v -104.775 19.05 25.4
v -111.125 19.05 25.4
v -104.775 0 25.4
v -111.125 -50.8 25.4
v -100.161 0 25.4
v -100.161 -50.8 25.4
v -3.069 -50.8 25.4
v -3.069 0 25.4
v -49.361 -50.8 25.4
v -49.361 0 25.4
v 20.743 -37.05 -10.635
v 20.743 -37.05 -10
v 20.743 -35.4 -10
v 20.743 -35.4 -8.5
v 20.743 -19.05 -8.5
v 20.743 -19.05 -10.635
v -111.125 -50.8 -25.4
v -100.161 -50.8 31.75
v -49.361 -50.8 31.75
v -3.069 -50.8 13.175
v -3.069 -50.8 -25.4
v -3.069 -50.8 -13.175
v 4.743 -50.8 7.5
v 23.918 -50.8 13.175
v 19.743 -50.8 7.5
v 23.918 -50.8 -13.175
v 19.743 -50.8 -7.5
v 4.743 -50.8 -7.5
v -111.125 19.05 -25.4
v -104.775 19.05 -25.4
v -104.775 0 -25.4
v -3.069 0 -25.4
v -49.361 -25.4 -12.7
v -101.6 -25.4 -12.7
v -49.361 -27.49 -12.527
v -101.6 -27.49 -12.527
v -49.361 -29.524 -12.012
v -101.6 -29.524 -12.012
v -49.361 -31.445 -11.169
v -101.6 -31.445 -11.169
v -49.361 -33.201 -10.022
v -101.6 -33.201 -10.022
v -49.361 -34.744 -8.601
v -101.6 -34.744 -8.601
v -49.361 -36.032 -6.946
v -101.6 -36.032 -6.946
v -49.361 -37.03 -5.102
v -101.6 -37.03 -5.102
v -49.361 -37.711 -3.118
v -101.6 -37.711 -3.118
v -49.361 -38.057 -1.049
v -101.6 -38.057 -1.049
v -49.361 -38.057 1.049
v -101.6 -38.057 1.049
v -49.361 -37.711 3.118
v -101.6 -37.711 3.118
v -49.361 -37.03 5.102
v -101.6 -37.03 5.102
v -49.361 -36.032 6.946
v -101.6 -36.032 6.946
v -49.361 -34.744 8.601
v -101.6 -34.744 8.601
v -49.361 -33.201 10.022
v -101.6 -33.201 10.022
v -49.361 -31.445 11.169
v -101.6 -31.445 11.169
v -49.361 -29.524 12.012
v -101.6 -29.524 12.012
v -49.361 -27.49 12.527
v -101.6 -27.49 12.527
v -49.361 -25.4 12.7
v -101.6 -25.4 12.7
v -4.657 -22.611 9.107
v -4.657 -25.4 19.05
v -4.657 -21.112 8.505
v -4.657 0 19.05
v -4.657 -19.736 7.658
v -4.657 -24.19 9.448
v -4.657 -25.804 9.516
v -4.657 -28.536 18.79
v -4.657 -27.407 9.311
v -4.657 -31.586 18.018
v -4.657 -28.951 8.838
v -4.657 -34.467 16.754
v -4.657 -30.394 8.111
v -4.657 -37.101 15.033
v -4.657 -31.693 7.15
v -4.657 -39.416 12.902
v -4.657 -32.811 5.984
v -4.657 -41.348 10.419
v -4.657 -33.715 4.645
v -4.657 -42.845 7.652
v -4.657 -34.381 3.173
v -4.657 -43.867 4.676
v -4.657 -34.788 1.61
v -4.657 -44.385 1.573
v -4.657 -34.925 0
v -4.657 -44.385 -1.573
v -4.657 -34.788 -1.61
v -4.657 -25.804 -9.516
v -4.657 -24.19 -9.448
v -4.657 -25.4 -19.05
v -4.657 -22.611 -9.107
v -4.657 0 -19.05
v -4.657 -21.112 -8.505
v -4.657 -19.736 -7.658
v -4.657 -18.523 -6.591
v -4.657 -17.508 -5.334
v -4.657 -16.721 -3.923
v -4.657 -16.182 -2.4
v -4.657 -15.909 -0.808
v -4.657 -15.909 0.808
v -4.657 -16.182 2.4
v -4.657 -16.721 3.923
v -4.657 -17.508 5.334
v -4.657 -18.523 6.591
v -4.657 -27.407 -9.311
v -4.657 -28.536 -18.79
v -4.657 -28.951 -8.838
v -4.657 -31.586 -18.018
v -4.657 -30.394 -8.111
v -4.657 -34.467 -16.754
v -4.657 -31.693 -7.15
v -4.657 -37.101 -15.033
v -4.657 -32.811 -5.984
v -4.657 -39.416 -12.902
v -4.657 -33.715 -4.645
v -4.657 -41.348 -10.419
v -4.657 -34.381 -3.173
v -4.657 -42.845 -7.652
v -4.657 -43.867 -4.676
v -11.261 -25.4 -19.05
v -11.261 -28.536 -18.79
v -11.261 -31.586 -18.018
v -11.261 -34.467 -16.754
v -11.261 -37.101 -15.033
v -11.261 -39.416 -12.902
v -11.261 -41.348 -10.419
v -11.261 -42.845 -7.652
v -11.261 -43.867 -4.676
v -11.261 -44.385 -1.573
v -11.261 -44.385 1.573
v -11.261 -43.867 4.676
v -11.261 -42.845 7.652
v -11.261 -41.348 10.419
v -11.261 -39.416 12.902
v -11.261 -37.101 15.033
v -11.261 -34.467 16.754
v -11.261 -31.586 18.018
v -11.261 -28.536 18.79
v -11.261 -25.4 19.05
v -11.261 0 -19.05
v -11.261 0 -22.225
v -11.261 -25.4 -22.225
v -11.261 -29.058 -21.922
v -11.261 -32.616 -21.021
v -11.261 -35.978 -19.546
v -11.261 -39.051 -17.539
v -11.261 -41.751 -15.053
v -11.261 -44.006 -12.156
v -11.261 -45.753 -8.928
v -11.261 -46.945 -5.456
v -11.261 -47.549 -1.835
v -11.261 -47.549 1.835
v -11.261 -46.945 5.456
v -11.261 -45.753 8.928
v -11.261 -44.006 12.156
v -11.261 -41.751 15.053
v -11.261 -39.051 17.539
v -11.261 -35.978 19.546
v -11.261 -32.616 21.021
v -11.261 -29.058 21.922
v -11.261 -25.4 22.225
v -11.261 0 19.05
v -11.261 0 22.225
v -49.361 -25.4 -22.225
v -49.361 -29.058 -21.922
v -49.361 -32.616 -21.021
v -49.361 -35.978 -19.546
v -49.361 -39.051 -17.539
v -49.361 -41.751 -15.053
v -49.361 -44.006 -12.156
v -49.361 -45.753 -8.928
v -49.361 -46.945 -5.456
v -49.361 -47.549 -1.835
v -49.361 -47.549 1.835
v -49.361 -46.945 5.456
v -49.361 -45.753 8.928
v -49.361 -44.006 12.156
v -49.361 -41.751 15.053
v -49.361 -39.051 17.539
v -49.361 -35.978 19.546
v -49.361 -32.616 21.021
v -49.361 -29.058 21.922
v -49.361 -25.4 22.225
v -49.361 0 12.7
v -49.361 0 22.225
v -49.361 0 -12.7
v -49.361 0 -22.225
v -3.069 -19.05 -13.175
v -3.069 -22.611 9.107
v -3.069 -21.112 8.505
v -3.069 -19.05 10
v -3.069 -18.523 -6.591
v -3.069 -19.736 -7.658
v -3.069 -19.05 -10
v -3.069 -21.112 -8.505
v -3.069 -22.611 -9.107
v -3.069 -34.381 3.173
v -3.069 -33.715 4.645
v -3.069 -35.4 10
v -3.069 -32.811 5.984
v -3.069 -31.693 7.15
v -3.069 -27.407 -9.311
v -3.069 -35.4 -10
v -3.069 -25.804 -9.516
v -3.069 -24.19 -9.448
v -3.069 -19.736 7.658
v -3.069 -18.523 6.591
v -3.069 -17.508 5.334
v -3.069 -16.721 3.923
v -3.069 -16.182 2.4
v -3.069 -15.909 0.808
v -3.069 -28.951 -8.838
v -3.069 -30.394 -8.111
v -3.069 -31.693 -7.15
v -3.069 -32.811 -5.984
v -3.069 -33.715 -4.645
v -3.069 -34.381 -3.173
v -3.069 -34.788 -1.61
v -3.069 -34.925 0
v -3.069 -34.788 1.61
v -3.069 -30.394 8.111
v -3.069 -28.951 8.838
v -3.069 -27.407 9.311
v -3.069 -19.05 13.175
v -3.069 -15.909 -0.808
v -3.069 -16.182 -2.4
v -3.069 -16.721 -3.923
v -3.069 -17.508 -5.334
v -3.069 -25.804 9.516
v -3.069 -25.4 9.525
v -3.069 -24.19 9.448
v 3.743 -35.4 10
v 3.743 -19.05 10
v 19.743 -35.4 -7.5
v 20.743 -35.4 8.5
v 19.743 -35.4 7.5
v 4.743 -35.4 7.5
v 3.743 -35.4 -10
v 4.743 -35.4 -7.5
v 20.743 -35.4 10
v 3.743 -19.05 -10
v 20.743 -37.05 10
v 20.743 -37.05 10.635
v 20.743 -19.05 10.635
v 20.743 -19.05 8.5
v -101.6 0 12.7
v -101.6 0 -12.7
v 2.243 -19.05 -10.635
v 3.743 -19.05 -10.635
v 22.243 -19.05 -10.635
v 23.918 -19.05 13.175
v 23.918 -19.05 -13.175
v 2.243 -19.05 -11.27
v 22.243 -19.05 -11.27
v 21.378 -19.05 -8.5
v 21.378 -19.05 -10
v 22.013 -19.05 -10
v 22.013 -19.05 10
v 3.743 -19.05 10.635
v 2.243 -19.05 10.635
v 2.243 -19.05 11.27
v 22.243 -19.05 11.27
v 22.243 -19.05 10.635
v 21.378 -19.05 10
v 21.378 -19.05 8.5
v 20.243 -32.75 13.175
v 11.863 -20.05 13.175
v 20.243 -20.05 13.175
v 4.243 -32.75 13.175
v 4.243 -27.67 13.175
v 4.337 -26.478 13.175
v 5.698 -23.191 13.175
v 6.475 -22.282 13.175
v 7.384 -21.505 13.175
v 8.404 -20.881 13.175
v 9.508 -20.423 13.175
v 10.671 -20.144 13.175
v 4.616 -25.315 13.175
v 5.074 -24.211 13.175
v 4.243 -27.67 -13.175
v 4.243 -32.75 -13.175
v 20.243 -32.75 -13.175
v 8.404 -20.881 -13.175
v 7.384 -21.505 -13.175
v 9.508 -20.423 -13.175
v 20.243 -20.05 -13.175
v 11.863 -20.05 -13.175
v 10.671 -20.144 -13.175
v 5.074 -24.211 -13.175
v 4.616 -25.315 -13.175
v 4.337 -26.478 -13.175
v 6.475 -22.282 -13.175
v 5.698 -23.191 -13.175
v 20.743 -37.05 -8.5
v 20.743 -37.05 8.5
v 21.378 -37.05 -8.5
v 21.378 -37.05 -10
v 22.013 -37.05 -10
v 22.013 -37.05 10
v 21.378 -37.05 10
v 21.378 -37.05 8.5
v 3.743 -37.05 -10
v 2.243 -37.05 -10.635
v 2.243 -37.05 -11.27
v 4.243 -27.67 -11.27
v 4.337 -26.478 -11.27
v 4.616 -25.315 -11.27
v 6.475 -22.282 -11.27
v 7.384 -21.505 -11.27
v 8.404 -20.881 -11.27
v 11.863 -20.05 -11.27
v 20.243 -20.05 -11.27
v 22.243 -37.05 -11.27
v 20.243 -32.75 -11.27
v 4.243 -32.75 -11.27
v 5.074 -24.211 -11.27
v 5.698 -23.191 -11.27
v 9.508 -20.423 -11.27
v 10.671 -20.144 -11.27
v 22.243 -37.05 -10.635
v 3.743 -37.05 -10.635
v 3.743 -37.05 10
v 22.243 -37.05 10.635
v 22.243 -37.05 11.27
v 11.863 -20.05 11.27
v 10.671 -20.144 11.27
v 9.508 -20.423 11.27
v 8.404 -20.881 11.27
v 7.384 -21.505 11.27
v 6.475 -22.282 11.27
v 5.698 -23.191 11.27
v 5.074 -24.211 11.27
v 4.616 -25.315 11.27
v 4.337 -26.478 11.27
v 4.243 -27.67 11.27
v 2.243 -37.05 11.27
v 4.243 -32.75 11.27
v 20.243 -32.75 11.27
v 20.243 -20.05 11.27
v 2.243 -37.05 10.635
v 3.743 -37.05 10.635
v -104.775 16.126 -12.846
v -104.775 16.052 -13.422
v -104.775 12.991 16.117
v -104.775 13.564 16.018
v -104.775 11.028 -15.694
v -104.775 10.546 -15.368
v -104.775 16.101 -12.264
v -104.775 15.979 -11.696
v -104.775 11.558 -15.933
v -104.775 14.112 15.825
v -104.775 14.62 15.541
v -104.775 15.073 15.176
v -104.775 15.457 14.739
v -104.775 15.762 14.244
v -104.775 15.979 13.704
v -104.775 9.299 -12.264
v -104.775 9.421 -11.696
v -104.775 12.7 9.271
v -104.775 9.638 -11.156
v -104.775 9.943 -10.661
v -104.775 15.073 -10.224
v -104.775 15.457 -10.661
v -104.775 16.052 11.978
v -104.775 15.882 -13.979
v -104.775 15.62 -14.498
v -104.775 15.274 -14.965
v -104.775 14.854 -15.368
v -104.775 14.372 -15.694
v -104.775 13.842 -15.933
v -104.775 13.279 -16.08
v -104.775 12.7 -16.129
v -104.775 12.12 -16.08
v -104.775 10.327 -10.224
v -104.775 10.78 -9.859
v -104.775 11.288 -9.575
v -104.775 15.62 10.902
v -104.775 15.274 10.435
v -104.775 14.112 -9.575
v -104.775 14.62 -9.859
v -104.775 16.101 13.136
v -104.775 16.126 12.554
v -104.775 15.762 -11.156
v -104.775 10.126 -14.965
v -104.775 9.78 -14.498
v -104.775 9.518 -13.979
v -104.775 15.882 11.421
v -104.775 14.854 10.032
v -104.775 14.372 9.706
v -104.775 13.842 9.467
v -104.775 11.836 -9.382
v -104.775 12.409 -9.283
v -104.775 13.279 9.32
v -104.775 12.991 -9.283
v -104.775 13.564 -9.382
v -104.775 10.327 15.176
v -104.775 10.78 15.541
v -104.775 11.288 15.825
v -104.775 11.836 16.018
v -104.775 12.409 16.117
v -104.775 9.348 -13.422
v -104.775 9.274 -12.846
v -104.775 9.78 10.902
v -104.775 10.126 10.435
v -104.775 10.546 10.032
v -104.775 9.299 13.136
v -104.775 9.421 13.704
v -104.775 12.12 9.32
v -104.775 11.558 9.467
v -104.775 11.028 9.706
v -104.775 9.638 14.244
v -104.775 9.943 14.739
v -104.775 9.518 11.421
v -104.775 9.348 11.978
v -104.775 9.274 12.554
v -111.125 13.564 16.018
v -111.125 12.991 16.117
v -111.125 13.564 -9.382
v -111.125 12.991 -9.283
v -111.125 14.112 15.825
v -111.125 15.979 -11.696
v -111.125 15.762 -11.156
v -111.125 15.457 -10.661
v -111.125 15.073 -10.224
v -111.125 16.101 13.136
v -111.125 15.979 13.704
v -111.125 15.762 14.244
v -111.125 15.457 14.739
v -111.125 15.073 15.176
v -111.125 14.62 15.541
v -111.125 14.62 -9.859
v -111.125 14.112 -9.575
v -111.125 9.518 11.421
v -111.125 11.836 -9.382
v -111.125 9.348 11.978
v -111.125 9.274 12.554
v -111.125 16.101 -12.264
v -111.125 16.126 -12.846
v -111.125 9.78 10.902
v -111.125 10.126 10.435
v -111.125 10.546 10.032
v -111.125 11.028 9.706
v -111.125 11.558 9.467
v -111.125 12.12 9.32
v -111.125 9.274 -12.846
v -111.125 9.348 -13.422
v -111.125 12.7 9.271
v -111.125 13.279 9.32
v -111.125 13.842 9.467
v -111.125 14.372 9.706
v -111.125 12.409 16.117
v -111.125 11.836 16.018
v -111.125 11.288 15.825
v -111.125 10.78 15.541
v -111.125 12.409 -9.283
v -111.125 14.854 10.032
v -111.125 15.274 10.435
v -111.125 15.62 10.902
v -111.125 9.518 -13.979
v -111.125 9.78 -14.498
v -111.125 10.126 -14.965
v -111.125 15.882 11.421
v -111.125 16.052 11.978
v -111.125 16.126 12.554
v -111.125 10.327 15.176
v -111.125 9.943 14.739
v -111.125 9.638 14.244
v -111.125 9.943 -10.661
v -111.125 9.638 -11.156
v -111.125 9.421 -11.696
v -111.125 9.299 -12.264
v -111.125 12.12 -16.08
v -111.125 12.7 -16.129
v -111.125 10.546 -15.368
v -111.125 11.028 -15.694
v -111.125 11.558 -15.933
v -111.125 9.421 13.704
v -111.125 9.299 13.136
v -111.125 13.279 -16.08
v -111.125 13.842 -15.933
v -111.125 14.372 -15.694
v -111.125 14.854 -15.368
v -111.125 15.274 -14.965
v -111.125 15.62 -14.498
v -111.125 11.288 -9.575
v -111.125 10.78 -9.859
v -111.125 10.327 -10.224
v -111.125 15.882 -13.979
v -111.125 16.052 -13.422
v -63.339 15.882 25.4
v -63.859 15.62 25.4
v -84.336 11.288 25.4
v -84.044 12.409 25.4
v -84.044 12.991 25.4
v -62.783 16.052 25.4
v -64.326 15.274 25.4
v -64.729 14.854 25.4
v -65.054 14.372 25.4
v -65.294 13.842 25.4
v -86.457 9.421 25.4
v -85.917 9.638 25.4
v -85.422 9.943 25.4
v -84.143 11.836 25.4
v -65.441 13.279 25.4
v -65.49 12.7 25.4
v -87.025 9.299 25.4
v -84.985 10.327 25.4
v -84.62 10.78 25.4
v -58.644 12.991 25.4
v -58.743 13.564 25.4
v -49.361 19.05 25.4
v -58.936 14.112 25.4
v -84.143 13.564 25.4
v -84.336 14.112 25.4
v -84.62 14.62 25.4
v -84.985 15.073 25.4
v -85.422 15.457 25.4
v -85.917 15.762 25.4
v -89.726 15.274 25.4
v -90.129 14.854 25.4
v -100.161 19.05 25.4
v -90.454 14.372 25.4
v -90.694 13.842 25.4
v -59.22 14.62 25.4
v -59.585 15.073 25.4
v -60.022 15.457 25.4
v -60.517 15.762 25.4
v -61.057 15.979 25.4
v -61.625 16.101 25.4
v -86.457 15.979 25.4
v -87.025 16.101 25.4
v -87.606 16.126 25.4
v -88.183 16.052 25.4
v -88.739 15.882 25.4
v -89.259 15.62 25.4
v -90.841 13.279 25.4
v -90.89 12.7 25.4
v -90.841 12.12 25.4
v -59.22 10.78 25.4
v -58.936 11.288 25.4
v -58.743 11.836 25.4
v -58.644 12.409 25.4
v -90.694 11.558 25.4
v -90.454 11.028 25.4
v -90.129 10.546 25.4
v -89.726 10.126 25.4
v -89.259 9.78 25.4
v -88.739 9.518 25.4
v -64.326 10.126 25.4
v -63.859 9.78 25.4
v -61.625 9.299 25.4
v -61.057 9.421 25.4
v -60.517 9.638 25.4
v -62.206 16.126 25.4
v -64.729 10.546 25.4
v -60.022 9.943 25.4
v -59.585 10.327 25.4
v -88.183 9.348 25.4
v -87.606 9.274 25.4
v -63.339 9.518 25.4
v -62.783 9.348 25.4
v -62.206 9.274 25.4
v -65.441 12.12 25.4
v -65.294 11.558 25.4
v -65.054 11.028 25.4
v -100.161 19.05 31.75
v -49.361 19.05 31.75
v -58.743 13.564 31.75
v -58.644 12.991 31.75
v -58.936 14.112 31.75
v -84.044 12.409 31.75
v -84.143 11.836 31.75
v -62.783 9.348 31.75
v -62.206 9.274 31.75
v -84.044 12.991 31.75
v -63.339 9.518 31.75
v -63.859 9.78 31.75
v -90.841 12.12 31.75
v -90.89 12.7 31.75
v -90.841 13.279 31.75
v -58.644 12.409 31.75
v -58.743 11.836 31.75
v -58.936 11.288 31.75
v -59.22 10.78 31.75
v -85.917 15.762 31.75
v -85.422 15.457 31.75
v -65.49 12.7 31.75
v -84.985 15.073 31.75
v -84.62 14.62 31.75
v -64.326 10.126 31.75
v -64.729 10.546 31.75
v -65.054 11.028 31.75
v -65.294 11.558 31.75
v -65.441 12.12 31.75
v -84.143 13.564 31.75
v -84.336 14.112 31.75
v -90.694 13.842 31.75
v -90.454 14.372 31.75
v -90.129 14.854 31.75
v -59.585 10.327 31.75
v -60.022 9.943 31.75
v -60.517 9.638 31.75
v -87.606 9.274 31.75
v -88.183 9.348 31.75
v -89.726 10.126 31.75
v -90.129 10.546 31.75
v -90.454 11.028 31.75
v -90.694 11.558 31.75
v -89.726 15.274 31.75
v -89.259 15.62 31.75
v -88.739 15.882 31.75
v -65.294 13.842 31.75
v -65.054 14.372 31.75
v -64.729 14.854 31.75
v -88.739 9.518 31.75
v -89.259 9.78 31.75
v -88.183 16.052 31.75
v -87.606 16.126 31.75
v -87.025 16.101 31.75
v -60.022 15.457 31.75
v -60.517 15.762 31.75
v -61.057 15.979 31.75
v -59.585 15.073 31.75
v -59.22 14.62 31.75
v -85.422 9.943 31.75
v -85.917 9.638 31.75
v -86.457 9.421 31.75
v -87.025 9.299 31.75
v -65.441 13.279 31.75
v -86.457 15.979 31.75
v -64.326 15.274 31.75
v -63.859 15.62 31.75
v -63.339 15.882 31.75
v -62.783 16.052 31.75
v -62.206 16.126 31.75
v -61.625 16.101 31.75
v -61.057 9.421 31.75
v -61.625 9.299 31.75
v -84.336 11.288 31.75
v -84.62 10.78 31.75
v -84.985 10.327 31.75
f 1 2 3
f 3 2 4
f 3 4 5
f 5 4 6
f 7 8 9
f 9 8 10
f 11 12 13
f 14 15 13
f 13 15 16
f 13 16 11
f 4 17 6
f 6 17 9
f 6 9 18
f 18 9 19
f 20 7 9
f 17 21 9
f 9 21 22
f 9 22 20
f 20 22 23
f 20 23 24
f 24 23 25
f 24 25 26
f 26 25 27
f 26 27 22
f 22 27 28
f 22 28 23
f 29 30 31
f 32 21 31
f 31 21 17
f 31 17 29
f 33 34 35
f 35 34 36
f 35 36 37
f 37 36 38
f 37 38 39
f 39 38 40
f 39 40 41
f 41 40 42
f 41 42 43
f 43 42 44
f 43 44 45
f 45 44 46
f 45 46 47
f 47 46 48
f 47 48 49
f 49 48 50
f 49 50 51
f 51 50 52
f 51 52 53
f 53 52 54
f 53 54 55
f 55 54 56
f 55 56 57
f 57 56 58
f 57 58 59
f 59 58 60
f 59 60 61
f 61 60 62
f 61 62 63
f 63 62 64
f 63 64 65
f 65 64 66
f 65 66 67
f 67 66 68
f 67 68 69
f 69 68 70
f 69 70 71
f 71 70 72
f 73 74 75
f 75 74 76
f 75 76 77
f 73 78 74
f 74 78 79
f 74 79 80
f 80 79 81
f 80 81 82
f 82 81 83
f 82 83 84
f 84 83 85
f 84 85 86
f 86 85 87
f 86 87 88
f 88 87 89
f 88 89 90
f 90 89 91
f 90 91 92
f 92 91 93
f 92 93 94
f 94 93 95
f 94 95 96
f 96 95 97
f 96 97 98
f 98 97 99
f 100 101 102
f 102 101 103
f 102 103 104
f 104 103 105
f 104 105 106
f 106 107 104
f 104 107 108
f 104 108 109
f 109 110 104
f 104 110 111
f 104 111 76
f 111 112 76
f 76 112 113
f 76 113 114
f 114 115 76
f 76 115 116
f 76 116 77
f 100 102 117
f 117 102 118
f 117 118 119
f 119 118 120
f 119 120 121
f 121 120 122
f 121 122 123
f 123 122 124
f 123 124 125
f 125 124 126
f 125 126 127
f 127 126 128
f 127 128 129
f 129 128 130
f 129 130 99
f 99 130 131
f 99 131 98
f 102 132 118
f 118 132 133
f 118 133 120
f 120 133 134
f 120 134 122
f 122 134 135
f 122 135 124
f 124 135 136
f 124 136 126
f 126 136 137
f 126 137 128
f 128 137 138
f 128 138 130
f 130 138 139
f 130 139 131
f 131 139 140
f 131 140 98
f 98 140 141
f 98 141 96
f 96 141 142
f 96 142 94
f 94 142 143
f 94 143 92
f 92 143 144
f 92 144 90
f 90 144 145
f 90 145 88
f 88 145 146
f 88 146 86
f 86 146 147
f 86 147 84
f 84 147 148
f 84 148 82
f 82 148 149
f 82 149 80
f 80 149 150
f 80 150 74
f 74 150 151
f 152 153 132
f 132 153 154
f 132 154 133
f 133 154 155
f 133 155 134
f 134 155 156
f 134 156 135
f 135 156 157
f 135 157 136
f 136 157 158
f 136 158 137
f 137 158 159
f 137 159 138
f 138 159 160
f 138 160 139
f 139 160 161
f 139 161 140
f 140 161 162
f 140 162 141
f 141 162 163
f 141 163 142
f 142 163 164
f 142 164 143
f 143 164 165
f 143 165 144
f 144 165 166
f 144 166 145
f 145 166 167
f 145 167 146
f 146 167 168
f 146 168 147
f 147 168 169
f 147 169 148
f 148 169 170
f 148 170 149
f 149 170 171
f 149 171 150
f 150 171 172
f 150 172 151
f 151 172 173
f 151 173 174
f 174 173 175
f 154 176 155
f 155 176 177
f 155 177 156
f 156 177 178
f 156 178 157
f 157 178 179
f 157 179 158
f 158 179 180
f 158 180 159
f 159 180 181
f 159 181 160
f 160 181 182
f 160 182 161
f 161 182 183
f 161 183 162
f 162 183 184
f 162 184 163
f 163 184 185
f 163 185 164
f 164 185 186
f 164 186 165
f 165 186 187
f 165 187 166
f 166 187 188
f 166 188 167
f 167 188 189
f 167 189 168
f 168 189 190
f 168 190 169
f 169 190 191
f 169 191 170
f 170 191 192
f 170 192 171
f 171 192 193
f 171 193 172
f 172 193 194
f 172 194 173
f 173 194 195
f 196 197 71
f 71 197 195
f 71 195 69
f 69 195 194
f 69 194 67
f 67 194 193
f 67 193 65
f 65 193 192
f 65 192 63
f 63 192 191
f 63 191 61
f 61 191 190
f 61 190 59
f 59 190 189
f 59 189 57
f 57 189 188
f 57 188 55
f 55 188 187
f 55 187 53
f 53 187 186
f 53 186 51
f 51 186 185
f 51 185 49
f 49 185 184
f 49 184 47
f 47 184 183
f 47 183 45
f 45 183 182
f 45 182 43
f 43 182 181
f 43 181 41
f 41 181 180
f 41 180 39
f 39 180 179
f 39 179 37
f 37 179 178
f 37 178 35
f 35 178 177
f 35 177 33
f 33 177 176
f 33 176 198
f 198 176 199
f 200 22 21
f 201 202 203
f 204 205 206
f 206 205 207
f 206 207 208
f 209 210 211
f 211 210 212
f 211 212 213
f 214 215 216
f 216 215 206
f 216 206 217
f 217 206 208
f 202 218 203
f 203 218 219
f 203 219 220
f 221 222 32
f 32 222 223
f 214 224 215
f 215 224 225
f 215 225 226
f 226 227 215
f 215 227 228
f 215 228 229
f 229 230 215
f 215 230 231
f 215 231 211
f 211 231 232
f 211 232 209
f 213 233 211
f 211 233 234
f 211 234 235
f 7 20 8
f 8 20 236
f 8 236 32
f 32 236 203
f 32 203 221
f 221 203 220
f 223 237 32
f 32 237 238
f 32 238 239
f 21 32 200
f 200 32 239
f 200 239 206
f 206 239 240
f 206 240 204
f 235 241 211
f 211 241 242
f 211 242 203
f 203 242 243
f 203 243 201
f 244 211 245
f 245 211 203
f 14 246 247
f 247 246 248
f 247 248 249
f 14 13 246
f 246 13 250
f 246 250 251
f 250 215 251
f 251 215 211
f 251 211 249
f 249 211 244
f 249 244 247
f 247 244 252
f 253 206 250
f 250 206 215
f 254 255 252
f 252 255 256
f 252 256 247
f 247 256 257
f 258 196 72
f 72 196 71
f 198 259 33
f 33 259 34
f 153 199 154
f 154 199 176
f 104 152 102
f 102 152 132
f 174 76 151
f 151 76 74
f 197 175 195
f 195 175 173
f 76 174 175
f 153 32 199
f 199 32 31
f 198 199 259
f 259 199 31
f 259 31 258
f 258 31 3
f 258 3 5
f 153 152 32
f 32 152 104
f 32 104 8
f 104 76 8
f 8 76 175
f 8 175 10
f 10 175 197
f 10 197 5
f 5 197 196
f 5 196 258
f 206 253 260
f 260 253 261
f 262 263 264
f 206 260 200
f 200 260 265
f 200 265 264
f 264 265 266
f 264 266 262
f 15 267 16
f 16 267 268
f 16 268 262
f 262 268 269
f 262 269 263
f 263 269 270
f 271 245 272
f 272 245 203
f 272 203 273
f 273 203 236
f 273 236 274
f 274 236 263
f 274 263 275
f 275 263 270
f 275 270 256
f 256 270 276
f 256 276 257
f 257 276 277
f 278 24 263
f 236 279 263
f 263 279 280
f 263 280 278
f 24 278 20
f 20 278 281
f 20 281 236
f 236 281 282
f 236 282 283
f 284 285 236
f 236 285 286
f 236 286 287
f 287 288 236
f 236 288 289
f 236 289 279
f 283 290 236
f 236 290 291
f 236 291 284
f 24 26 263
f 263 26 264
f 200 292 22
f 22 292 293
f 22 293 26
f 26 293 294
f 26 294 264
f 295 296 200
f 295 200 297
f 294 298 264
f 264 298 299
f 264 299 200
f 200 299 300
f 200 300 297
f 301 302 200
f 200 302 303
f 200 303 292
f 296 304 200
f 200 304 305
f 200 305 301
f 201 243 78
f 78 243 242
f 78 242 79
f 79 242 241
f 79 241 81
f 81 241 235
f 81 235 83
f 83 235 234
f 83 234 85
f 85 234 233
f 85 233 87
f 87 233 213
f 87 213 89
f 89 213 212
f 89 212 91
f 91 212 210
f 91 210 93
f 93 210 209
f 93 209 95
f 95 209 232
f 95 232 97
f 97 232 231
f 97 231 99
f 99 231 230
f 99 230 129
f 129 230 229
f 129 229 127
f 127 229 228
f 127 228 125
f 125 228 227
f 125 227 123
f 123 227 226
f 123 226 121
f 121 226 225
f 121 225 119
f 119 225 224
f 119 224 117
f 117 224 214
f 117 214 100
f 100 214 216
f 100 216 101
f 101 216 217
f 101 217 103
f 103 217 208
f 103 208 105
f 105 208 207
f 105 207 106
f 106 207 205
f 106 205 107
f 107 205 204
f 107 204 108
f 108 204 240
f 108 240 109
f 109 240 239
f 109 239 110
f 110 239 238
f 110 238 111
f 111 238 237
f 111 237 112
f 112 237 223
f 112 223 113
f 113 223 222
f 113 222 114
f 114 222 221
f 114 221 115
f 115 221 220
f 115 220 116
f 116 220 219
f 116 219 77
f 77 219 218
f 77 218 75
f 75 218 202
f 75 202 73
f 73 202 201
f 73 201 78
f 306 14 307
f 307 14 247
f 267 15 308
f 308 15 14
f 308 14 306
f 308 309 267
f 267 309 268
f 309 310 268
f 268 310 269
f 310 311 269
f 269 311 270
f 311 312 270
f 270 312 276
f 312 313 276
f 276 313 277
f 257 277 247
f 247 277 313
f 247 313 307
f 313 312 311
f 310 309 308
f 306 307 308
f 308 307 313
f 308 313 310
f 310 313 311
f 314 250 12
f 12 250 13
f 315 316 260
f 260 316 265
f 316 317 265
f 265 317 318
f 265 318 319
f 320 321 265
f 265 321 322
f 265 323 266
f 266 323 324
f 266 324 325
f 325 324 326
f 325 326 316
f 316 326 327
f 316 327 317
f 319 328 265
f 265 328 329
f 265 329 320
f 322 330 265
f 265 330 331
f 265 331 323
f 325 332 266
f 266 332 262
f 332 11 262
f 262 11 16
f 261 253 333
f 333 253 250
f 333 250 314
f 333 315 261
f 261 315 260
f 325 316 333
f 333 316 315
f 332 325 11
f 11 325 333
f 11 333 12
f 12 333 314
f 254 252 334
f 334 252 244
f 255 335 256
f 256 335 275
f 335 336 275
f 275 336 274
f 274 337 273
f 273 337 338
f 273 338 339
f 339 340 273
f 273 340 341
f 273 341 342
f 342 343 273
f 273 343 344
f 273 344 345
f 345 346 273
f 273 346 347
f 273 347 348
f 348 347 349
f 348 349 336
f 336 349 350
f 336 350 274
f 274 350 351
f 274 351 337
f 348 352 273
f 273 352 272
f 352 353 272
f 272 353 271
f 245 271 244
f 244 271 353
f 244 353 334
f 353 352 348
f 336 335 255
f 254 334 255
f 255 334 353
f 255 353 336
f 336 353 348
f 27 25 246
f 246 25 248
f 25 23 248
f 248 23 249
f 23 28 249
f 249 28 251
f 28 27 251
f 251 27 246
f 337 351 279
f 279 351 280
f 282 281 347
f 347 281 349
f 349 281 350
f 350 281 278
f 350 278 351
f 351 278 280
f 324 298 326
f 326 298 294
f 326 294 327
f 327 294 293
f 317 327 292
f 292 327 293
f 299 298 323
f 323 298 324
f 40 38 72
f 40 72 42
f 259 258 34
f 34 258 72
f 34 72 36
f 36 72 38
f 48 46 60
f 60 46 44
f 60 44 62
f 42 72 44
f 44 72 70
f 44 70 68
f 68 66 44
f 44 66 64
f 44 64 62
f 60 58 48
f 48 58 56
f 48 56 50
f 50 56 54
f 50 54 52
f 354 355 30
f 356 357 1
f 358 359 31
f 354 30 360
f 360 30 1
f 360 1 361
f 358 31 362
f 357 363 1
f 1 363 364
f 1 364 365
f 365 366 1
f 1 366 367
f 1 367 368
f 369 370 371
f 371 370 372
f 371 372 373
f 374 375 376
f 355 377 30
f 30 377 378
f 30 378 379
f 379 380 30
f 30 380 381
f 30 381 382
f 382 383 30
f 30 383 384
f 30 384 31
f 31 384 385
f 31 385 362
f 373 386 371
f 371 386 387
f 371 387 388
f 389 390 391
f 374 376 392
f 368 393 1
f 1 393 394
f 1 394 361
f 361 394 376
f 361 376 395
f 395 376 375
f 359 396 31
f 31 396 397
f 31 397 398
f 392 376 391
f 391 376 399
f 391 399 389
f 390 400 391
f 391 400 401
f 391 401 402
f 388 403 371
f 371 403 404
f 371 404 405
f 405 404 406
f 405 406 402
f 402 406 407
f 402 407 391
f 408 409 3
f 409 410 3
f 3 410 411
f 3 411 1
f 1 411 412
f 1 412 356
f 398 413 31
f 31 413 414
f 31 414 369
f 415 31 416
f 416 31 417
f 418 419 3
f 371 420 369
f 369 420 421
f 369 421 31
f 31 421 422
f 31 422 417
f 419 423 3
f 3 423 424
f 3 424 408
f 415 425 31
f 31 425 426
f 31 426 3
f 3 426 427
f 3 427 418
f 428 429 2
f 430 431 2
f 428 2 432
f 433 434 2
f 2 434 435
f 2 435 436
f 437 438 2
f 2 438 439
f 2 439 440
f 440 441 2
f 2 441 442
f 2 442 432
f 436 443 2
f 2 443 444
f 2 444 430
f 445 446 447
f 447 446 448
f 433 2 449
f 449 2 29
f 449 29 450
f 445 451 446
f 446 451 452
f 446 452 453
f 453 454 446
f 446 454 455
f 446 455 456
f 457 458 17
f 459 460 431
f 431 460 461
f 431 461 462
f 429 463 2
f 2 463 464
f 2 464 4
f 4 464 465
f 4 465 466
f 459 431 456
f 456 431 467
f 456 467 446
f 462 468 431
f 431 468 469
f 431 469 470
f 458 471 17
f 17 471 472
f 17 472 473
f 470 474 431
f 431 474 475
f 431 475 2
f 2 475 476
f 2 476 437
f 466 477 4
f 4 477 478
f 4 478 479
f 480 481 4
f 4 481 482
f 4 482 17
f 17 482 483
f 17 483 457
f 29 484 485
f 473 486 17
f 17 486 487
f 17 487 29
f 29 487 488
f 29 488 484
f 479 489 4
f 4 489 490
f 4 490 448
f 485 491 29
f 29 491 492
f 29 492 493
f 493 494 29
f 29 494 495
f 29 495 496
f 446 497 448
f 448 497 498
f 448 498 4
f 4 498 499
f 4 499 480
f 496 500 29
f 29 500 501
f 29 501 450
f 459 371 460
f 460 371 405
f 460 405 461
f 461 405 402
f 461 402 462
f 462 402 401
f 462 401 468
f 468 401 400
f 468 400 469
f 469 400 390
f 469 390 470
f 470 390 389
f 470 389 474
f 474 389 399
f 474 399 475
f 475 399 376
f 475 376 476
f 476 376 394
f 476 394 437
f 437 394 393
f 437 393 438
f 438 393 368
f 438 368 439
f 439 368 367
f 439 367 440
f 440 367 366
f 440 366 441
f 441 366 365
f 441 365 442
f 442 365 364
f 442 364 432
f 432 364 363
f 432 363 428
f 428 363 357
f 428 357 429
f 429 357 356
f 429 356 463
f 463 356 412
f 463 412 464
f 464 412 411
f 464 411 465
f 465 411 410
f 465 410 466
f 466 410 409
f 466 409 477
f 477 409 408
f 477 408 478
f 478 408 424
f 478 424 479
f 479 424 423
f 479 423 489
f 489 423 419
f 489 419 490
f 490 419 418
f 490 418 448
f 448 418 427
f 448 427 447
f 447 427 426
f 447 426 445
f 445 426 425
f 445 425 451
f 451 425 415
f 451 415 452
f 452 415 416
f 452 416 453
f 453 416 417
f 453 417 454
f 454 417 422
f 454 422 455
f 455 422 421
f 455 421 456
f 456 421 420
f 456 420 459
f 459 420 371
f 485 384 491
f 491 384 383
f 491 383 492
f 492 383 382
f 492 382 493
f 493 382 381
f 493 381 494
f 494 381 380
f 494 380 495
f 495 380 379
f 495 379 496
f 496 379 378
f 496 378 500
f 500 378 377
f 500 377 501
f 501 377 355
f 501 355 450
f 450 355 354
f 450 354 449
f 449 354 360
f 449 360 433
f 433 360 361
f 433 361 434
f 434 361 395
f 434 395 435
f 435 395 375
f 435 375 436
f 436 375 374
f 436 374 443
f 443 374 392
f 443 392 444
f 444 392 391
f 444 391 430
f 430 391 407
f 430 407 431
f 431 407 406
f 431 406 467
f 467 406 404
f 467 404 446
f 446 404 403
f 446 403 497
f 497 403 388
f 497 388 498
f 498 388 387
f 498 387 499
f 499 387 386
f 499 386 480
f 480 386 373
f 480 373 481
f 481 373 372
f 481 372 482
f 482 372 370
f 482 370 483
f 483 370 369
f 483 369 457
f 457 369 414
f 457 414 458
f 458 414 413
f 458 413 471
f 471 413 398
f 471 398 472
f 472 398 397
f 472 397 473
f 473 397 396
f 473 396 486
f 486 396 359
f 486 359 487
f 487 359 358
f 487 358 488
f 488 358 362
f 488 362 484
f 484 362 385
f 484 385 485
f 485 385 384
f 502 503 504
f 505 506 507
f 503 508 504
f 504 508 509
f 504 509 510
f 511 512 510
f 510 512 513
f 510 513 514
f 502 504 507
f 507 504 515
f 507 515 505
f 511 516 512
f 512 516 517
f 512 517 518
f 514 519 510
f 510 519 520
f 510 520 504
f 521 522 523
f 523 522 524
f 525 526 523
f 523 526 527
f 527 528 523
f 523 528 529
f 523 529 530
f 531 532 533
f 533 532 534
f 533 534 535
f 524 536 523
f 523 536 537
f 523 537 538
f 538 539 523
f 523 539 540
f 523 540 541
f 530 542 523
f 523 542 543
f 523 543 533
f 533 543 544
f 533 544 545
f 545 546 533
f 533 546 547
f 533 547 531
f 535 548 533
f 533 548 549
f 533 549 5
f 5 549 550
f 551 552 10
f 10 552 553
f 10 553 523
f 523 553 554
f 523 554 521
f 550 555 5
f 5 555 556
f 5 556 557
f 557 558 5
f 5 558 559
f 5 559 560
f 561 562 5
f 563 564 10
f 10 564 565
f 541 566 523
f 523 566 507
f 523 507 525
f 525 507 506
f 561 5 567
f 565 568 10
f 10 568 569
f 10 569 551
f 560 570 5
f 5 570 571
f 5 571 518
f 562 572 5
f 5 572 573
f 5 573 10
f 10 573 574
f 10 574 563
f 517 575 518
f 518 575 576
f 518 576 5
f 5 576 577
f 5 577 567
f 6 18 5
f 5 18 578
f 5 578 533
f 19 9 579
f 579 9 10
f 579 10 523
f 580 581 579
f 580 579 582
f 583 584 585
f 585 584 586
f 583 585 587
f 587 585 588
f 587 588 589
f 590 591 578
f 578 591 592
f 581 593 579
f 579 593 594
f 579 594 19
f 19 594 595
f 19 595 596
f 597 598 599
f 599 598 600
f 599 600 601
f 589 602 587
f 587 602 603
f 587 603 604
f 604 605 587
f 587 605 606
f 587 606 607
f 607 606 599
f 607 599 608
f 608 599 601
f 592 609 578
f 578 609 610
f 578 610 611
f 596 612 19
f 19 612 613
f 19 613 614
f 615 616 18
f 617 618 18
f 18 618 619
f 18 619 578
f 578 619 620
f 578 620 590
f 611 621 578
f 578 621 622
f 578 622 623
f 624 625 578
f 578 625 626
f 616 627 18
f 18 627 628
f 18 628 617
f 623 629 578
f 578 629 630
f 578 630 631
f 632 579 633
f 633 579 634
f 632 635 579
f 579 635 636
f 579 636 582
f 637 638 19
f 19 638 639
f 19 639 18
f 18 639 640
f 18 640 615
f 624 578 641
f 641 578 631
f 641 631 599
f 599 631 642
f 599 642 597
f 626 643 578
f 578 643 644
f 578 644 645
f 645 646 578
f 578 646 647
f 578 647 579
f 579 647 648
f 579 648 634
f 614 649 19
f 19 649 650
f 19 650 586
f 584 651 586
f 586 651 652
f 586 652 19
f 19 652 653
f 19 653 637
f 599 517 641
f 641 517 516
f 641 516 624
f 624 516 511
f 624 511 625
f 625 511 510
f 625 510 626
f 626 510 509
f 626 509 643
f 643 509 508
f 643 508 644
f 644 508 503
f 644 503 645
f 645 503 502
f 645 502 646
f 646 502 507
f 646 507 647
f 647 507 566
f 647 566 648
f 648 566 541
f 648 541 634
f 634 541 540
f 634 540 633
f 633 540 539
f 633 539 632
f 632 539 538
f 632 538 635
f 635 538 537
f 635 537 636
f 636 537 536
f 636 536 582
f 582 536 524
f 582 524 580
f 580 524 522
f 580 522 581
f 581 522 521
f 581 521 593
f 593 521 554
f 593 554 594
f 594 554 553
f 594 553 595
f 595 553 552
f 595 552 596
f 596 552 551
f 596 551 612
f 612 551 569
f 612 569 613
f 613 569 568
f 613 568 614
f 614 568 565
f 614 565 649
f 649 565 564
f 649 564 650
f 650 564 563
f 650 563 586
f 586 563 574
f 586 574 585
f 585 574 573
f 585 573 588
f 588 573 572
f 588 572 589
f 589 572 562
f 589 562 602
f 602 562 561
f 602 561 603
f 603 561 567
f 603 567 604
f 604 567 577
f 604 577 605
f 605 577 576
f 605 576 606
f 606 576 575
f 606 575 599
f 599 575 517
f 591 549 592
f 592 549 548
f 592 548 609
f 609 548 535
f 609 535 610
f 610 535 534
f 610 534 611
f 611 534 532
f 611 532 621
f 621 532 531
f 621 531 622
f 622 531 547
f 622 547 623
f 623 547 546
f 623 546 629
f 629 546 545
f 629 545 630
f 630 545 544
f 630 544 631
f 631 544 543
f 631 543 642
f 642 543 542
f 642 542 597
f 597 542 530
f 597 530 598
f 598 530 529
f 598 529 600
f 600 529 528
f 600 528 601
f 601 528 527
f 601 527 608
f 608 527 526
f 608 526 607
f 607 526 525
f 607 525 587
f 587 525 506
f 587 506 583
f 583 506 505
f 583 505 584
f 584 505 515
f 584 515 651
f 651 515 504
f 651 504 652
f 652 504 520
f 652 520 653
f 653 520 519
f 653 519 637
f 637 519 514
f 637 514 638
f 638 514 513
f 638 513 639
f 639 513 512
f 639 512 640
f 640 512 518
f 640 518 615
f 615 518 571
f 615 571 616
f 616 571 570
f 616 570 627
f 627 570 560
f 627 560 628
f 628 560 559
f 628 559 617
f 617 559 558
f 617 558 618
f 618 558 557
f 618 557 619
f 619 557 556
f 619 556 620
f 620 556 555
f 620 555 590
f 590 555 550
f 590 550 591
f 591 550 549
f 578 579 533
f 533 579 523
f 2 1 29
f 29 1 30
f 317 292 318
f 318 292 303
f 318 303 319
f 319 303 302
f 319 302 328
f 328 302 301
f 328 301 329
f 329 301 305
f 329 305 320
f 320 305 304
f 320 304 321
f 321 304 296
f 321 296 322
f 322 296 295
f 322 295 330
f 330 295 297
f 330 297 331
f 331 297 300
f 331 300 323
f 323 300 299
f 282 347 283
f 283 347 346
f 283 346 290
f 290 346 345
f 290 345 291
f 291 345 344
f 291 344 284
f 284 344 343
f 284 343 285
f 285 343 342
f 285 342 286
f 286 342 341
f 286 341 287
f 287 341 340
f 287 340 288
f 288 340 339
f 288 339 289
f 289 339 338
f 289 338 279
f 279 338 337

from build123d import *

# Parameters (mm, degrees)
SKETCH1_W                = 116.84
SKETCH1_H                = 50.8
BOSS_EXTRUDE1_DEPTH      = 25.4
SKETCH38_W               = 20
SKETCH38_H               = 20
CUT_EXTRUDE33_DEPTH      = 23.8125
SKETCH37_W               = 50.8
SKETCH37_H               = 25.4
CUT_EXTRUDE32_DEPTH      = 130.912992422
BOSS_EXTRUDE5_DEPTH      = 25.4
CUT_EXTRUDE54_DEPTH      = 96.038097624
CUT_EXTRUDE54_DEPTH_BACK = 96.038097624
SKETCH45_W               = 43.7094
SKETCH45_H               = 19.05
SKETCH53_R               = 2
CUT_EXTRUDE46_DEPTH      = 0.0254
CUT_EXTRUDE55_DEPTH      = 87.36933773
SKETCH61_R               = 9.906
SKETCH61_R_2             = 9.525
BOSS_EXTRUDE11_DEPTH     = 1.5875
BOSS_EXTRUDE17_REACH     = 97.038
SKETCH70_W               = 1.5875
SKETCH70_H               = 19.812
CUT_EXTRUDE56_DEPTH      = 18
SKETCH76_W               = 15
SKETCH76_H               = 15
CUT_EXTRUDE58_DEPTH      = 88.776762301
CUT_EXTRUDE59_DEPTH      = 99.649728332
CUT_EXTRUDE59_DEPTH_BACK = 99.649728332
SKETCH77_W               = 16
SKETCH77_H               = 12.7
BOSS_EXTRUDE18_START     = 25.4
BOSS_EXTRUDE18_DEPTH     = 25.4
SKETCH79_W               = 50.8
SKETCH79_H               = 50.8
BOSS_EXTRUDE19_DEPTH     = 3.175
SKETCH80_W               = 50.8
SKETCH80_H               = 101.6
BOSS_EXTRUDE20_DEPTH     = 6.35
SKETCH81_R               = 3.429
CUT_EXTRUDE60_DEPTH      = 141.668809576
SKETCH82_W               = 50.8
SKETCH82_H               = 101.6
BOSS_EXTRUDE21_DEPTH     = 6.35
SKETCH83_R               = 3.429
CUT_EXTRUDE61_DEPTH      = 133.325529
SKETCH84_W               = 110.249820412
SKETCH84_H               = 109.628139174
CUT_EXTRUDE62_DEPTH      = 31.75
FILLET1_R                = 7.62


with BuildPart() as part:
    # Sketch1 → Boss-Extrude1 (new, symmetric)
    with BuildSketch(Plane.XY):
        with Locations((-17.78, -25.4)):
            Rectangle(SKETCH1_W, SKETCH1_H)
    extrude(amount=BOSS_EXTRUDE1_DEPTH, both=True)

    # Sketch2 → Cut-Revolve1 (revolve, cut)
    with BuildSketch(Plane.XY, mode=Mode.PRIVATE) as cut_revolve1_sk:
        Polygon((-49.3609, -3.175), (-49.3609, -12.7), (-220.202391615, -12.7), (-220.202391615, -25.4), (-157.809194346, -25.4), (-128.417210056, -25.4), (19.629439755, -25.4), (20.7431, -25.4), (20.7431, -15.494), (-4.6569, -15.494), (-4.6569, -6.35), (-11.2609, -6.35), (-11.2609, -3.175), align=None)
    revolve(cut_revolve1_sk.sketch.rotate(Axis((-152.482877195, -25.4, 0), (1, 0, 0)), 90), axis=Axis((-152.482877195, -25.4, 0), (1, 0, 0)), mode=Mode.SUBTRACT)

    # Sketch38 → Cut-Extrude33 (cut)
    with BuildSketch(Plane(origin=(20.7431, 0, 0), x_dir=(0, 0, -1), z_dir=(1, 0, 0))):
        with Locations((0, -25.4)):
            Rectangle(SKETCH38_W, SKETCH38_H)
    extrude(amount=-CUT_EXTRUDE33_DEPTH, mode=Mode.SUBTRACT)

    # Sketch37 → Cut-Extrude32 (cut, through all)
    with BuildSketch(Plane(origin=(40.64, 0, 0), x_dir=(0, 0, -1), z_dir=(1, 0, 0))):
        with Locations((0, -12.7)):
            Rectangle(SKETCH37_W, SKETCH37_H)
    extrude(amount=-CUT_EXTRUDE32_DEPTH, mode=Mode.SUBTRACT)

    # Sketch39 → Boss-Extrude5 (add)
    with BuildSketch(Plane(origin=(0, -25.4, 0), x_dir=(1, 0, 0), z_dir=(0, 1, 0))):
        Polygon((-3.0694, 9.906), (-3.0694, 10), (20.7431, 10), (20.7431, -10), (-3.0694, -10), (-3.0694, -9.906), (-4.6569, -9.906), (-4.6569, -19.05), (-11.2609, -19.05), (-11.2609, -22.225), (-49.3609, -22.225), (-49.3609, -12.7), (-76.2, -12.7), (-76.2, -25.4), (40.64, -25.4), (40.64, 25.4), (-76.2, 25.4), (-76.2, 12.7), (-49.3609, 12.7), (-49.3609, 22.225), (-11.2609, 22.225), (-11.2609, 19.05), (-4.6569, 19.05), (-4.6569, 9.906), align=None)
    extrude(amount=BOSS_EXTRUDE5_DEPTH)

    # Sketch45 → Cut-Extrude54 (cut, two sides: drawn at the far end of the back side and taken through both)
    with BuildSketch(Plane.XY.offset(-CUT_EXTRUDE54_DEPTH_BACK)):
        with Locations((18.7853, -9.525)):
            Rectangle(SKETCH45_W, SKETCH45_H)
    extrude(amount=CUT_EXTRUDE54_DEPTH + CUT_EXTRUDE54_DEPTH_BACK, mode=Mode.SUBTRACT)

    # Sketch53 → Cut-Extrude46 (cut)
    with BuildSketch(Plane.ZY.offset(-20.7431)):
        with Locations((0, -25.4)):
            Circle(SKETCH53_R)
    extrude(amount=-CUT_EXTRUDE46_DEPTH, mode=Mode.SUBTRACT)

    # Sketch72 → Cut-Extrude55 (cut, through all)
    with BuildSketch(Plane(origin=(0, -19.05, 0), x_dir=(1, 0, 0), z_dir=(0, 1, 0))):
        Polygon((-3.0694, -25.4), (-3.0694, -13.175), (23.9181, -13.175), (23.9181, 13.175), (-3.0694, 13.175), (-3.0694, 25.4), (40.64, 25.4), (40.64, -25.4), align=None)
    extrude(amount=-CUT_EXTRUDE55_DEPTH, mode=Mode.SUBTRACT)

    # Sketch61 → Boss-Extrude11 (add)
    with BuildSketch(Plane.ZY.offset(4.6569)):
        with Locations((0, -25.4)):
            Circle(SKETCH61_R)
        with Locations(Location((0, -25.4, 0), (0, 0, 270))):
            Circle(SKETCH61_R_2, mode=Mode.SUBTRACT)
    extrude(amount=-BOSS_EXTRUDE11_DEPTH)

    # Sketch70 → Boss-Extrude17 (add, up to next)
    with BuildSketch(Plane(origin=(0, 0, 0), x_dir=(1, 0, 0), z_dir=(0, 1, 0)), mode=Mode.PRIVATE) as boss_extrude17_sk1:
        with Locations((-3.86315, 0)):
            Rectangle(SKETCH70_W, SKETCH70_H)
    boss_extrude17_tool1 = extrude(boss_extrude17_sk1.sketch, amount=-BOSS_EXTRUDE17_REACH, mode=Mode.PRIVATE) - part.part
    add(boss_extrude17_tool1.solids().sort_by_distance((-3.86315, 0, 0))[0])

    # Sketch73 → Cut-Extrude56 (cut)
    with BuildSketch(Plane(origin=(0, -19.05, 0), x_dir=(1, 0, 0), z_dir=(0, 1, 0))):
        Polygon((20.7431, -8.5), (21.3781, -8.5), (21.3781, -10), (22.0131, -10), (22.0131, 10), (21.3781, 10), (21.3781, 8.5), (20.7431, 8.5), align=None)
        Polygon((2.2431, 11.27), (22.2431, 11.27), (22.2431, 10.635), (20.7431, 10.635), (20.7431, 10), (3.7431, 10), (3.7431, 10.635), (2.2431, 10.635), align=None)
        Polygon((20.7431, -10.635), (22.2431, -10.635), (22.2431, -11.27), (2.2431, -11.27), (2.2431, -10.635), (3.7431, -10.635), (3.7431, -10), (20.7431, -10), align=None)
    extrude(amount=-CUT_EXTRUDE56_DEPTH, mode=Mode.SUBTRACT)

    # Sketch76 → Cut-Extrude58 (cut, through all)
    with BuildSketch(Plane(origin=(0, -35.4, 0), x_dir=(1, 0, 0), z_dir=(0, 1, 0))):
        with Locations((12.2431, 0)):
            Rectangle(SKETCH76_W, SKETCH76_H)
    extrude(amount=-CUT_EXTRUDE58_DEPTH, mode=Mode.SUBTRACT)

    # Sketch77 → Cut-Extrude59 (cut, two sides: drawn at the far end of the back side and taken through both)
    with BuildSketch(Plane.XY.offset(-11.27).offset(-CUT_EXTRUDE59_DEPTH_BACK)):
        with Locations((12.2431, -26.4)):
            Rectangle(SKETCH77_W, SKETCH77_H)
    extrude(amount=CUT_EXTRUDE59_DEPTH + CUT_EXTRUDE59_DEPTH_BACK, mode=Mode.SUBTRACT)

    # Sketch78 → Boss-Extrude18 (add)
    with BuildSketch(Plane.ZY.offset(76.2).offset(BOSS_EXTRUDE18_START)):
        with BuildLine():
            Line((25.4, -50.8), (25.4, 0))
            Line((25.4, 0), (12.7, 0))
            Line((12.7, 0), (12.7, -25.4))
            ThreePointArc((12.7, -25.4), (0, -38.1), (-12.7, -25.4))
            Line((-12.7, -25.4), (-12.7, 0))
            Line((-12.7, 0), (-25.4, 0))
            Line((-25.4, 0), (-25.4, -50.8))
            Line((-25.4, -50.8), (25.4, -50.8))
        make_face()
    extrude(amount=-BOSS_EXTRUDE18_DEPTH)

    # Sketch79 → Boss-Extrude19 (add)
    with BuildSketch(Plane.ZY.offset(101.6)):
        with Locations((0, -25.4)):
            Rectangle(SKETCH79_W, SKETCH79_H)
    extrude(amount=BOSS_EXTRUDE19_DEPTH)

    # Sketch80 → Boss-Extrude20 (add)
    with BuildSketch(Plane.ZY.offset(104.775)):
        Rectangle(SKETCH80_W, SKETCH80_H)
    extrude(amount=BOSS_EXTRUDE20_DEPTH)

    # Sketch81 → Cut-Extrude60 (cut, through all)
    with BuildSketch(Plane(origin=(-104.775, 0, 0), x_dir=(0, 0, -1), z_dir=(1, 0, 0))):
        with Locations((-12.7, 38.1)):
            Circle(SKETCH81_R)
        with Locations((12.7, 38.1)):
            Circle(SKETCH81_R)
        with Locations((12.7, 12.7)):
            Circle(SKETCH81_R)
        with Locations((-12.7, 12.7)):
            Circle(SKETCH81_R)
    extrude(amount=-CUT_EXTRUDE60_DEPTH, mode=Mode.SUBTRACT)

    # Sketch82 → Boss-Extrude21 (add)
    with BuildSketch(Plane.XY.offset(25.4)):
        with Locations((-74.7609, 0)):
            Rectangle(SKETCH82_W, SKETCH82_H)
    extrude(amount=BOSS_EXTRUDE21_DEPTH)

    # Sketch83 → Cut-Extrude61 (cut, through all)
    with BuildSketch(Plane(origin=(0, 0, 25.4), x_dir=(-1, 0, 0), z_dir=(0, 0, -1))):
        with Locations((62.0609, 38.1)):
            Circle(SKETCH83_R)
        with Locations((87.4609, 38.1)):
            Circle(SKETCH83_R)
        with Locations((87.4609, 12.7)):
            Circle(SKETCH83_R)
        with Locations((62.0609, 12.7)):
            Circle(SKETCH83_R)
    extrude(amount=-CUT_EXTRUDE61_DEPTH, mode=Mode.SUBTRACT)

    # Sketch84 → Cut-Extrude62 (cut)
    with BuildSketch(Plane(origin=(0, 50.8, 0), x_dir=(1, 0, 0), z_dir=(0, 1, 0))):
        with Locations((-74.595326767, 1.567462675)):
            Rectangle(SKETCH84_W, SKETCH84_H)
    extrude(amount=-CUT_EXTRUDE62_DEPTH, mode=Mode.SUBTRACT)

    # Fillet1
    fillet1_edges = [part.edges().sort_by_distance(p)[0] for p in [
        (4.2431, -20.05, 12.2225),
        (4.2431, -20.05, -12.2225),
    ]]
    fillet(fillet1_edges, radius=FILLET1_R)


solid = part.part
